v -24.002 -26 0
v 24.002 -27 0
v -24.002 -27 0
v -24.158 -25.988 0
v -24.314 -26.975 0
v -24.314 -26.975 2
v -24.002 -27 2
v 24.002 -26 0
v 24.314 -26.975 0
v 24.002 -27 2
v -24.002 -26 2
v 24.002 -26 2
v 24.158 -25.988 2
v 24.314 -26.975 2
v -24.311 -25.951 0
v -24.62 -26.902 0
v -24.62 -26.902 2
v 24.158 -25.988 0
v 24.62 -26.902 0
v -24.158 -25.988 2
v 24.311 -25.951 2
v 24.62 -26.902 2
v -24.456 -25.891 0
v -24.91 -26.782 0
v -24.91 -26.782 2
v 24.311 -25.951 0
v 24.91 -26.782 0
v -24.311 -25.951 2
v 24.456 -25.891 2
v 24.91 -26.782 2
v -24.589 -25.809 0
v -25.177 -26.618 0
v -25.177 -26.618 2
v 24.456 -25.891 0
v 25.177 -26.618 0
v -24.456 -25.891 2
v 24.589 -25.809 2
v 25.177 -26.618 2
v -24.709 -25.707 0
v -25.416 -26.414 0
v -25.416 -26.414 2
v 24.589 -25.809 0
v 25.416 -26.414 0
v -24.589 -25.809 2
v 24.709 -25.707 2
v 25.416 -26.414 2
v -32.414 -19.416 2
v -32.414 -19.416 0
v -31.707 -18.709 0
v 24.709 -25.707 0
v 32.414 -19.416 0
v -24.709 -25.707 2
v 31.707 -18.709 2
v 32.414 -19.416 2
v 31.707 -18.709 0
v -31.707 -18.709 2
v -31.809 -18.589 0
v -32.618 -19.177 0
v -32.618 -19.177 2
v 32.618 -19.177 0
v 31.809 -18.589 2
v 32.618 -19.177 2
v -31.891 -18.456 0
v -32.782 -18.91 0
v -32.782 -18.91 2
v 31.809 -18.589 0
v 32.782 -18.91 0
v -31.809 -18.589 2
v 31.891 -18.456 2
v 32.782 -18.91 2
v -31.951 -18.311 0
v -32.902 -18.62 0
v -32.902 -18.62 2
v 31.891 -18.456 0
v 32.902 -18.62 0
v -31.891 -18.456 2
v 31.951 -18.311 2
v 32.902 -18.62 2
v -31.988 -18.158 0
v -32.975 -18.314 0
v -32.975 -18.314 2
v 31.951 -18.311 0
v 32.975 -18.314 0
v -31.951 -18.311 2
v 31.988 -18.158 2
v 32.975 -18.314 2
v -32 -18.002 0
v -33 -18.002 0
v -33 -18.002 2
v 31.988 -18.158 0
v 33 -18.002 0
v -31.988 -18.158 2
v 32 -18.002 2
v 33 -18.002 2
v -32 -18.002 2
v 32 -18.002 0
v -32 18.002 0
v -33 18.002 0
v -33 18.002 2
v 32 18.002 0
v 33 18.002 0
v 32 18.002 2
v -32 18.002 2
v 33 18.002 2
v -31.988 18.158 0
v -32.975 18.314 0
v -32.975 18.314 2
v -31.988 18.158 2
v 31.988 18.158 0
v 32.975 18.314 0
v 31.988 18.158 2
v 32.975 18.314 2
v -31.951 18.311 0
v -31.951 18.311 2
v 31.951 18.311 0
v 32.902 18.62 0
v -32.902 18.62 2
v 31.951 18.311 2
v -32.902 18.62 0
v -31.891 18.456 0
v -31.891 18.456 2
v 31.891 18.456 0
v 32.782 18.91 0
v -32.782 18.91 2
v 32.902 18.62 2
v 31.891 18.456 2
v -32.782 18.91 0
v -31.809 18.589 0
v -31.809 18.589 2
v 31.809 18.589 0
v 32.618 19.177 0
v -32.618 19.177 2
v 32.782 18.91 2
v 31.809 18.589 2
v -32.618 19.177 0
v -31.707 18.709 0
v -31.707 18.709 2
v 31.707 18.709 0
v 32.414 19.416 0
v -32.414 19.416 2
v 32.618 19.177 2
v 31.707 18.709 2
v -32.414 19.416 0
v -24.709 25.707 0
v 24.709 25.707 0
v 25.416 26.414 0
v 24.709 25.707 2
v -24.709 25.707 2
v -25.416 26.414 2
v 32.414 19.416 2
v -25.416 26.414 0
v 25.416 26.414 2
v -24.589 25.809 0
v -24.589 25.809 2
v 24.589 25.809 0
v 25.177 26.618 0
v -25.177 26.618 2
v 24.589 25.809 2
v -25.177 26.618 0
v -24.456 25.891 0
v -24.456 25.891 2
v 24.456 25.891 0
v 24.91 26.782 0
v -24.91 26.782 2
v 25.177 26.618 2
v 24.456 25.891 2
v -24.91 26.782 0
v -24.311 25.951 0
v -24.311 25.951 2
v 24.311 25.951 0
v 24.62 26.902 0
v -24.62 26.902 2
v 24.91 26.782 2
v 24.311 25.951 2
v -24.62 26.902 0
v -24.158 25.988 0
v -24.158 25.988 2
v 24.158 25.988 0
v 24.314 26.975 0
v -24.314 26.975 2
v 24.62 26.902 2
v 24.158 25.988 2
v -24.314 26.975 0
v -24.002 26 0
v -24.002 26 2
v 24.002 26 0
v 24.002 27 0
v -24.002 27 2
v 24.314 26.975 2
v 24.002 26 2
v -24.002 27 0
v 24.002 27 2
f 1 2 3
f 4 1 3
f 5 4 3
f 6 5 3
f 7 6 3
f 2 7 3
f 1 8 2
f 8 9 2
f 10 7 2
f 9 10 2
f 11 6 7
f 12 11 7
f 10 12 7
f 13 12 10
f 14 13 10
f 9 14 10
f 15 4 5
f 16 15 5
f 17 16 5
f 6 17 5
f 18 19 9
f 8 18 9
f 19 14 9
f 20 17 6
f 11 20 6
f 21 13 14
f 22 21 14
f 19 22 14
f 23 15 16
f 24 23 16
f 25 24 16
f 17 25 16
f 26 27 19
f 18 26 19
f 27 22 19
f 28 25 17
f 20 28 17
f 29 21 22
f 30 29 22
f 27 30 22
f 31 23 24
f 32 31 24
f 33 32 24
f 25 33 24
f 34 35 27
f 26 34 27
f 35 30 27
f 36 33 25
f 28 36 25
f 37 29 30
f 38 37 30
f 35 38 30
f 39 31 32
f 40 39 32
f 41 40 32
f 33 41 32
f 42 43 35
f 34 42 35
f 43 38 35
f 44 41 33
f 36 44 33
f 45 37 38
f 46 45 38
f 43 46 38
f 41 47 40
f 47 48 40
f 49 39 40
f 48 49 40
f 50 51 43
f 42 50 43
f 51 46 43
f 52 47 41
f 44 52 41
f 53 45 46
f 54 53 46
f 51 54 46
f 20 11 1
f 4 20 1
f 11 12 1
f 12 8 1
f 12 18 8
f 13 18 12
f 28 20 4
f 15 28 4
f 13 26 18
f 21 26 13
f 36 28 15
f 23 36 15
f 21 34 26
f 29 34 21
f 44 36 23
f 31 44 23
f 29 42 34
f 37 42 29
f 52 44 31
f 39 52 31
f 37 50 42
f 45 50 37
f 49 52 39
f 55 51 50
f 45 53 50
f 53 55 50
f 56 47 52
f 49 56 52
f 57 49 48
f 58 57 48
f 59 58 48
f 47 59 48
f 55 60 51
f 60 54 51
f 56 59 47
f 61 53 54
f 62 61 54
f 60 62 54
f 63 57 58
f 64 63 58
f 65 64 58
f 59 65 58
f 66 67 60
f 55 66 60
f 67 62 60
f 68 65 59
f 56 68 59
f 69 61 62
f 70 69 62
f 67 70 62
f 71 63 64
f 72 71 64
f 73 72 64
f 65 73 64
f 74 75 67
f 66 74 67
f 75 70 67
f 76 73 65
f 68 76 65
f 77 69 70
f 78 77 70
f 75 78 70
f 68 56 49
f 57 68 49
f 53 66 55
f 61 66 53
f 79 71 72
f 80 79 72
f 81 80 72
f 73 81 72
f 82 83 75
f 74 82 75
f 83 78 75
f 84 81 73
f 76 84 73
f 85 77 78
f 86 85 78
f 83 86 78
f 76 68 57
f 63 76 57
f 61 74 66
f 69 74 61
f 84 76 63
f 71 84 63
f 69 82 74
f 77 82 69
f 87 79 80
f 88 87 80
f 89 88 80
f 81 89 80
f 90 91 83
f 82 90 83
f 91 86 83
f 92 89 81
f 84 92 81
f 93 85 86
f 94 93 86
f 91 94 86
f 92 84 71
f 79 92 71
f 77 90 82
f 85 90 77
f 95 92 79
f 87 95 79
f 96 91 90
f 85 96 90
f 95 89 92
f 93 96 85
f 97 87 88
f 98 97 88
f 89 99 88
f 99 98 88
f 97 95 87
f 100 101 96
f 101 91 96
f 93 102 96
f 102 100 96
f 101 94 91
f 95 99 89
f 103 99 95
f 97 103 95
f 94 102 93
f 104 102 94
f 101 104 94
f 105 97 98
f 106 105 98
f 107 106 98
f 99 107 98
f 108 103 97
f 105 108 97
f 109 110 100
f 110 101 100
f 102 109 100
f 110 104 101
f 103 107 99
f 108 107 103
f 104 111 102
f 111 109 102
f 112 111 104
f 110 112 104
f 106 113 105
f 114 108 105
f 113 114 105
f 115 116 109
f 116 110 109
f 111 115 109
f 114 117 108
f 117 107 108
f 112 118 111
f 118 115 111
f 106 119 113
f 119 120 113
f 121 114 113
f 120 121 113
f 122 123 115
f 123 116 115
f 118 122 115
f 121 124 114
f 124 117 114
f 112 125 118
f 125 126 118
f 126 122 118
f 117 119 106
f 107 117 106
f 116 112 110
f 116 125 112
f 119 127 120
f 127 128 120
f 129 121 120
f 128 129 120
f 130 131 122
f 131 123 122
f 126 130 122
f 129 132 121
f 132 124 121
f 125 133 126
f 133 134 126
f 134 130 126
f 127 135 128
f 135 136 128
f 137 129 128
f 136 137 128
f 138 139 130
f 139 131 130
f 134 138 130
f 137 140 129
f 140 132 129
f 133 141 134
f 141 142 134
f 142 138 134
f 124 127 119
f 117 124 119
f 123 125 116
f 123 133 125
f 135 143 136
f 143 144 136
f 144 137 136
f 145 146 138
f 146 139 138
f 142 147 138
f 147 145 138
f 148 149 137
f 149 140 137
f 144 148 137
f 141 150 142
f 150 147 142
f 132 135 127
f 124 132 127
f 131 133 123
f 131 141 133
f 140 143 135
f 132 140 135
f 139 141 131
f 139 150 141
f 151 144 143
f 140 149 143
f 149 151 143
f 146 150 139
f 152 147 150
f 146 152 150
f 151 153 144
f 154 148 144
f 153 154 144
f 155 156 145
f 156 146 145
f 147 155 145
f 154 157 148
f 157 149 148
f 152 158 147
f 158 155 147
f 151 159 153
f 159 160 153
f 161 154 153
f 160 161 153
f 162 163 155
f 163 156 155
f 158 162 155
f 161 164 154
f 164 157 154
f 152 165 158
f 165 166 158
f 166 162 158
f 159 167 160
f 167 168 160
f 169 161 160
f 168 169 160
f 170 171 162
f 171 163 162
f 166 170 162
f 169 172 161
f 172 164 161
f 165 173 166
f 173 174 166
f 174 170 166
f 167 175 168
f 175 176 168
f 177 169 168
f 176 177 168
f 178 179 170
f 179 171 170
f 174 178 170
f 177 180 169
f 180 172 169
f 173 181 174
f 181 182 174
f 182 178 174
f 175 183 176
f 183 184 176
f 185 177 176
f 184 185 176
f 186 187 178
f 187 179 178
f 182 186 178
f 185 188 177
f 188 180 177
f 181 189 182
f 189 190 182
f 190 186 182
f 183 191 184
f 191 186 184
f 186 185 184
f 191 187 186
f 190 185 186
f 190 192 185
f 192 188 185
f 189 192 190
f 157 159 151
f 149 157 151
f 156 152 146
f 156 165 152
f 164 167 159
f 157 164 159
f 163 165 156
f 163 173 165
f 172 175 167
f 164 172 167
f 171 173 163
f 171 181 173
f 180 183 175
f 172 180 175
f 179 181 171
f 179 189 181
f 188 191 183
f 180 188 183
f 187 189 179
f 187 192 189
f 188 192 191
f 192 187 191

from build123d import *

# Parameters (mm, degrees)
BOSS_EXTRU_1_DEPTH = 2


with BuildPart() as part:
    # Esquisse1 → Boss.-Extru.1 (new body)
    with BuildSketch(Plane.XY):
        with BuildLine():
            Line((-24.001572875, -27), (24.001572875, -27))
            ThreePointArc((24.001572875, -27), (24.76693974, -26.847759065), (25.415786438, -26.414213562))
            Line((25.415786438, -26.414213562), (32.414213562, -19.415786438))
            ThreePointArc((32.414213562, -19.415786438), (32.847759065, -18.76693974), (33, -18.001572875))
            Line((33, -18.001572875), (33, 18.001572875))
            ThreePointArc((33, 18.001572875), (32.847759065, 18.76693974), (32.414213562, 19.415786438))
            Line((32.414213562, 19.415786438), (25.415786438, 26.414213562))
            ThreePointArc((25.415786438, 26.414213562), (24.76693974, 26.847759065), (24.001572875, 27))
            Line((24.001572875, 27), (-24.001572875, 27))
            ThreePointArc((-24.001572875, 27), (-24.76693974, 26.847759065), (-25.415786438, 26.414213562))
            Line((-25.415786438, 26.414213562), (-32.414213562, 19.415786438))
            ThreePointArc((-32.414213562, 19.415786438), (-32.847759065, 18.76693974), (-33, 18.001572875))
            Line((-33, 18.001572875), (-33, -18.001572875))
            ThreePointArc((-33, -18.001572875), (-32.847759065, -18.76693974), (-32.414213562, -19.415786438))
            Line((-32.414213562, -19.415786438), (-25.415786438, -26.414213562))
            ThreePointArc((-25.415786438, -26.414213562), (-24.76693974, -26.847759065), (-24.001572875, -27))
        make_face()
        with BuildLine():
            Line((24.001572875, 26), (-24.001572875, 26))
            ThreePointArc((-24.001572875, 26), (-24.384256308, 25.923879533), (-24.708679656, 25.707106781))
            Line((-24.708679656, 25.707106781), (-31.707106781, 18.708679656))
            ThreePointArc((-31.707106781, 18.708679656), (-31.923879533, 18.384256308), (-32, 18.001572875))
            Line((-32, 18.001572875), (-32, -18.001572875))
            ThreePointArc((-32, -18.001572875), (-31.923879533, -18.384256308), (-31.707106781, -18.708679656))
            Line((-31.707106781, -18.708679656), (-24.708679656, -25.707106781))
            ThreePointArc((-24.708679656, -25.707106781), (-24.384256308, -25.923879533), (-24.001572875, -26))
            Line((-24.001572875, -26), (24.001572875, -26))
            ThreePointArc((24.001572875, -26), (24.384256308, -25.923879533), (24.708679656, -25.707106781))
            Line((24.708679656, -25.707106781), (31.707106781, -18.708679656))
            ThreePointArc((31.707106781, -18.708679656), (31.923879533, -18.384256308), (32, -18.001572875))
            Line((32, -18.001572875), (32, 18.001572875))
            ThreePointArc((32, 18.001572875), (31.923879533, 18.384256308), (31.707106781, 18.708679656))
            Line((31.707106781, 18.708679656), (24.708679656, 25.707106781))
            ThreePointArc((24.708679656, 25.707106781), (24.384256308, 25.923879533), (24.001572875, 26))
        make_face(mode=Mode.SUBTRACT)
    extrude(amount=BOSS_EXTRU_1_DEPTH)


solid = part.part
